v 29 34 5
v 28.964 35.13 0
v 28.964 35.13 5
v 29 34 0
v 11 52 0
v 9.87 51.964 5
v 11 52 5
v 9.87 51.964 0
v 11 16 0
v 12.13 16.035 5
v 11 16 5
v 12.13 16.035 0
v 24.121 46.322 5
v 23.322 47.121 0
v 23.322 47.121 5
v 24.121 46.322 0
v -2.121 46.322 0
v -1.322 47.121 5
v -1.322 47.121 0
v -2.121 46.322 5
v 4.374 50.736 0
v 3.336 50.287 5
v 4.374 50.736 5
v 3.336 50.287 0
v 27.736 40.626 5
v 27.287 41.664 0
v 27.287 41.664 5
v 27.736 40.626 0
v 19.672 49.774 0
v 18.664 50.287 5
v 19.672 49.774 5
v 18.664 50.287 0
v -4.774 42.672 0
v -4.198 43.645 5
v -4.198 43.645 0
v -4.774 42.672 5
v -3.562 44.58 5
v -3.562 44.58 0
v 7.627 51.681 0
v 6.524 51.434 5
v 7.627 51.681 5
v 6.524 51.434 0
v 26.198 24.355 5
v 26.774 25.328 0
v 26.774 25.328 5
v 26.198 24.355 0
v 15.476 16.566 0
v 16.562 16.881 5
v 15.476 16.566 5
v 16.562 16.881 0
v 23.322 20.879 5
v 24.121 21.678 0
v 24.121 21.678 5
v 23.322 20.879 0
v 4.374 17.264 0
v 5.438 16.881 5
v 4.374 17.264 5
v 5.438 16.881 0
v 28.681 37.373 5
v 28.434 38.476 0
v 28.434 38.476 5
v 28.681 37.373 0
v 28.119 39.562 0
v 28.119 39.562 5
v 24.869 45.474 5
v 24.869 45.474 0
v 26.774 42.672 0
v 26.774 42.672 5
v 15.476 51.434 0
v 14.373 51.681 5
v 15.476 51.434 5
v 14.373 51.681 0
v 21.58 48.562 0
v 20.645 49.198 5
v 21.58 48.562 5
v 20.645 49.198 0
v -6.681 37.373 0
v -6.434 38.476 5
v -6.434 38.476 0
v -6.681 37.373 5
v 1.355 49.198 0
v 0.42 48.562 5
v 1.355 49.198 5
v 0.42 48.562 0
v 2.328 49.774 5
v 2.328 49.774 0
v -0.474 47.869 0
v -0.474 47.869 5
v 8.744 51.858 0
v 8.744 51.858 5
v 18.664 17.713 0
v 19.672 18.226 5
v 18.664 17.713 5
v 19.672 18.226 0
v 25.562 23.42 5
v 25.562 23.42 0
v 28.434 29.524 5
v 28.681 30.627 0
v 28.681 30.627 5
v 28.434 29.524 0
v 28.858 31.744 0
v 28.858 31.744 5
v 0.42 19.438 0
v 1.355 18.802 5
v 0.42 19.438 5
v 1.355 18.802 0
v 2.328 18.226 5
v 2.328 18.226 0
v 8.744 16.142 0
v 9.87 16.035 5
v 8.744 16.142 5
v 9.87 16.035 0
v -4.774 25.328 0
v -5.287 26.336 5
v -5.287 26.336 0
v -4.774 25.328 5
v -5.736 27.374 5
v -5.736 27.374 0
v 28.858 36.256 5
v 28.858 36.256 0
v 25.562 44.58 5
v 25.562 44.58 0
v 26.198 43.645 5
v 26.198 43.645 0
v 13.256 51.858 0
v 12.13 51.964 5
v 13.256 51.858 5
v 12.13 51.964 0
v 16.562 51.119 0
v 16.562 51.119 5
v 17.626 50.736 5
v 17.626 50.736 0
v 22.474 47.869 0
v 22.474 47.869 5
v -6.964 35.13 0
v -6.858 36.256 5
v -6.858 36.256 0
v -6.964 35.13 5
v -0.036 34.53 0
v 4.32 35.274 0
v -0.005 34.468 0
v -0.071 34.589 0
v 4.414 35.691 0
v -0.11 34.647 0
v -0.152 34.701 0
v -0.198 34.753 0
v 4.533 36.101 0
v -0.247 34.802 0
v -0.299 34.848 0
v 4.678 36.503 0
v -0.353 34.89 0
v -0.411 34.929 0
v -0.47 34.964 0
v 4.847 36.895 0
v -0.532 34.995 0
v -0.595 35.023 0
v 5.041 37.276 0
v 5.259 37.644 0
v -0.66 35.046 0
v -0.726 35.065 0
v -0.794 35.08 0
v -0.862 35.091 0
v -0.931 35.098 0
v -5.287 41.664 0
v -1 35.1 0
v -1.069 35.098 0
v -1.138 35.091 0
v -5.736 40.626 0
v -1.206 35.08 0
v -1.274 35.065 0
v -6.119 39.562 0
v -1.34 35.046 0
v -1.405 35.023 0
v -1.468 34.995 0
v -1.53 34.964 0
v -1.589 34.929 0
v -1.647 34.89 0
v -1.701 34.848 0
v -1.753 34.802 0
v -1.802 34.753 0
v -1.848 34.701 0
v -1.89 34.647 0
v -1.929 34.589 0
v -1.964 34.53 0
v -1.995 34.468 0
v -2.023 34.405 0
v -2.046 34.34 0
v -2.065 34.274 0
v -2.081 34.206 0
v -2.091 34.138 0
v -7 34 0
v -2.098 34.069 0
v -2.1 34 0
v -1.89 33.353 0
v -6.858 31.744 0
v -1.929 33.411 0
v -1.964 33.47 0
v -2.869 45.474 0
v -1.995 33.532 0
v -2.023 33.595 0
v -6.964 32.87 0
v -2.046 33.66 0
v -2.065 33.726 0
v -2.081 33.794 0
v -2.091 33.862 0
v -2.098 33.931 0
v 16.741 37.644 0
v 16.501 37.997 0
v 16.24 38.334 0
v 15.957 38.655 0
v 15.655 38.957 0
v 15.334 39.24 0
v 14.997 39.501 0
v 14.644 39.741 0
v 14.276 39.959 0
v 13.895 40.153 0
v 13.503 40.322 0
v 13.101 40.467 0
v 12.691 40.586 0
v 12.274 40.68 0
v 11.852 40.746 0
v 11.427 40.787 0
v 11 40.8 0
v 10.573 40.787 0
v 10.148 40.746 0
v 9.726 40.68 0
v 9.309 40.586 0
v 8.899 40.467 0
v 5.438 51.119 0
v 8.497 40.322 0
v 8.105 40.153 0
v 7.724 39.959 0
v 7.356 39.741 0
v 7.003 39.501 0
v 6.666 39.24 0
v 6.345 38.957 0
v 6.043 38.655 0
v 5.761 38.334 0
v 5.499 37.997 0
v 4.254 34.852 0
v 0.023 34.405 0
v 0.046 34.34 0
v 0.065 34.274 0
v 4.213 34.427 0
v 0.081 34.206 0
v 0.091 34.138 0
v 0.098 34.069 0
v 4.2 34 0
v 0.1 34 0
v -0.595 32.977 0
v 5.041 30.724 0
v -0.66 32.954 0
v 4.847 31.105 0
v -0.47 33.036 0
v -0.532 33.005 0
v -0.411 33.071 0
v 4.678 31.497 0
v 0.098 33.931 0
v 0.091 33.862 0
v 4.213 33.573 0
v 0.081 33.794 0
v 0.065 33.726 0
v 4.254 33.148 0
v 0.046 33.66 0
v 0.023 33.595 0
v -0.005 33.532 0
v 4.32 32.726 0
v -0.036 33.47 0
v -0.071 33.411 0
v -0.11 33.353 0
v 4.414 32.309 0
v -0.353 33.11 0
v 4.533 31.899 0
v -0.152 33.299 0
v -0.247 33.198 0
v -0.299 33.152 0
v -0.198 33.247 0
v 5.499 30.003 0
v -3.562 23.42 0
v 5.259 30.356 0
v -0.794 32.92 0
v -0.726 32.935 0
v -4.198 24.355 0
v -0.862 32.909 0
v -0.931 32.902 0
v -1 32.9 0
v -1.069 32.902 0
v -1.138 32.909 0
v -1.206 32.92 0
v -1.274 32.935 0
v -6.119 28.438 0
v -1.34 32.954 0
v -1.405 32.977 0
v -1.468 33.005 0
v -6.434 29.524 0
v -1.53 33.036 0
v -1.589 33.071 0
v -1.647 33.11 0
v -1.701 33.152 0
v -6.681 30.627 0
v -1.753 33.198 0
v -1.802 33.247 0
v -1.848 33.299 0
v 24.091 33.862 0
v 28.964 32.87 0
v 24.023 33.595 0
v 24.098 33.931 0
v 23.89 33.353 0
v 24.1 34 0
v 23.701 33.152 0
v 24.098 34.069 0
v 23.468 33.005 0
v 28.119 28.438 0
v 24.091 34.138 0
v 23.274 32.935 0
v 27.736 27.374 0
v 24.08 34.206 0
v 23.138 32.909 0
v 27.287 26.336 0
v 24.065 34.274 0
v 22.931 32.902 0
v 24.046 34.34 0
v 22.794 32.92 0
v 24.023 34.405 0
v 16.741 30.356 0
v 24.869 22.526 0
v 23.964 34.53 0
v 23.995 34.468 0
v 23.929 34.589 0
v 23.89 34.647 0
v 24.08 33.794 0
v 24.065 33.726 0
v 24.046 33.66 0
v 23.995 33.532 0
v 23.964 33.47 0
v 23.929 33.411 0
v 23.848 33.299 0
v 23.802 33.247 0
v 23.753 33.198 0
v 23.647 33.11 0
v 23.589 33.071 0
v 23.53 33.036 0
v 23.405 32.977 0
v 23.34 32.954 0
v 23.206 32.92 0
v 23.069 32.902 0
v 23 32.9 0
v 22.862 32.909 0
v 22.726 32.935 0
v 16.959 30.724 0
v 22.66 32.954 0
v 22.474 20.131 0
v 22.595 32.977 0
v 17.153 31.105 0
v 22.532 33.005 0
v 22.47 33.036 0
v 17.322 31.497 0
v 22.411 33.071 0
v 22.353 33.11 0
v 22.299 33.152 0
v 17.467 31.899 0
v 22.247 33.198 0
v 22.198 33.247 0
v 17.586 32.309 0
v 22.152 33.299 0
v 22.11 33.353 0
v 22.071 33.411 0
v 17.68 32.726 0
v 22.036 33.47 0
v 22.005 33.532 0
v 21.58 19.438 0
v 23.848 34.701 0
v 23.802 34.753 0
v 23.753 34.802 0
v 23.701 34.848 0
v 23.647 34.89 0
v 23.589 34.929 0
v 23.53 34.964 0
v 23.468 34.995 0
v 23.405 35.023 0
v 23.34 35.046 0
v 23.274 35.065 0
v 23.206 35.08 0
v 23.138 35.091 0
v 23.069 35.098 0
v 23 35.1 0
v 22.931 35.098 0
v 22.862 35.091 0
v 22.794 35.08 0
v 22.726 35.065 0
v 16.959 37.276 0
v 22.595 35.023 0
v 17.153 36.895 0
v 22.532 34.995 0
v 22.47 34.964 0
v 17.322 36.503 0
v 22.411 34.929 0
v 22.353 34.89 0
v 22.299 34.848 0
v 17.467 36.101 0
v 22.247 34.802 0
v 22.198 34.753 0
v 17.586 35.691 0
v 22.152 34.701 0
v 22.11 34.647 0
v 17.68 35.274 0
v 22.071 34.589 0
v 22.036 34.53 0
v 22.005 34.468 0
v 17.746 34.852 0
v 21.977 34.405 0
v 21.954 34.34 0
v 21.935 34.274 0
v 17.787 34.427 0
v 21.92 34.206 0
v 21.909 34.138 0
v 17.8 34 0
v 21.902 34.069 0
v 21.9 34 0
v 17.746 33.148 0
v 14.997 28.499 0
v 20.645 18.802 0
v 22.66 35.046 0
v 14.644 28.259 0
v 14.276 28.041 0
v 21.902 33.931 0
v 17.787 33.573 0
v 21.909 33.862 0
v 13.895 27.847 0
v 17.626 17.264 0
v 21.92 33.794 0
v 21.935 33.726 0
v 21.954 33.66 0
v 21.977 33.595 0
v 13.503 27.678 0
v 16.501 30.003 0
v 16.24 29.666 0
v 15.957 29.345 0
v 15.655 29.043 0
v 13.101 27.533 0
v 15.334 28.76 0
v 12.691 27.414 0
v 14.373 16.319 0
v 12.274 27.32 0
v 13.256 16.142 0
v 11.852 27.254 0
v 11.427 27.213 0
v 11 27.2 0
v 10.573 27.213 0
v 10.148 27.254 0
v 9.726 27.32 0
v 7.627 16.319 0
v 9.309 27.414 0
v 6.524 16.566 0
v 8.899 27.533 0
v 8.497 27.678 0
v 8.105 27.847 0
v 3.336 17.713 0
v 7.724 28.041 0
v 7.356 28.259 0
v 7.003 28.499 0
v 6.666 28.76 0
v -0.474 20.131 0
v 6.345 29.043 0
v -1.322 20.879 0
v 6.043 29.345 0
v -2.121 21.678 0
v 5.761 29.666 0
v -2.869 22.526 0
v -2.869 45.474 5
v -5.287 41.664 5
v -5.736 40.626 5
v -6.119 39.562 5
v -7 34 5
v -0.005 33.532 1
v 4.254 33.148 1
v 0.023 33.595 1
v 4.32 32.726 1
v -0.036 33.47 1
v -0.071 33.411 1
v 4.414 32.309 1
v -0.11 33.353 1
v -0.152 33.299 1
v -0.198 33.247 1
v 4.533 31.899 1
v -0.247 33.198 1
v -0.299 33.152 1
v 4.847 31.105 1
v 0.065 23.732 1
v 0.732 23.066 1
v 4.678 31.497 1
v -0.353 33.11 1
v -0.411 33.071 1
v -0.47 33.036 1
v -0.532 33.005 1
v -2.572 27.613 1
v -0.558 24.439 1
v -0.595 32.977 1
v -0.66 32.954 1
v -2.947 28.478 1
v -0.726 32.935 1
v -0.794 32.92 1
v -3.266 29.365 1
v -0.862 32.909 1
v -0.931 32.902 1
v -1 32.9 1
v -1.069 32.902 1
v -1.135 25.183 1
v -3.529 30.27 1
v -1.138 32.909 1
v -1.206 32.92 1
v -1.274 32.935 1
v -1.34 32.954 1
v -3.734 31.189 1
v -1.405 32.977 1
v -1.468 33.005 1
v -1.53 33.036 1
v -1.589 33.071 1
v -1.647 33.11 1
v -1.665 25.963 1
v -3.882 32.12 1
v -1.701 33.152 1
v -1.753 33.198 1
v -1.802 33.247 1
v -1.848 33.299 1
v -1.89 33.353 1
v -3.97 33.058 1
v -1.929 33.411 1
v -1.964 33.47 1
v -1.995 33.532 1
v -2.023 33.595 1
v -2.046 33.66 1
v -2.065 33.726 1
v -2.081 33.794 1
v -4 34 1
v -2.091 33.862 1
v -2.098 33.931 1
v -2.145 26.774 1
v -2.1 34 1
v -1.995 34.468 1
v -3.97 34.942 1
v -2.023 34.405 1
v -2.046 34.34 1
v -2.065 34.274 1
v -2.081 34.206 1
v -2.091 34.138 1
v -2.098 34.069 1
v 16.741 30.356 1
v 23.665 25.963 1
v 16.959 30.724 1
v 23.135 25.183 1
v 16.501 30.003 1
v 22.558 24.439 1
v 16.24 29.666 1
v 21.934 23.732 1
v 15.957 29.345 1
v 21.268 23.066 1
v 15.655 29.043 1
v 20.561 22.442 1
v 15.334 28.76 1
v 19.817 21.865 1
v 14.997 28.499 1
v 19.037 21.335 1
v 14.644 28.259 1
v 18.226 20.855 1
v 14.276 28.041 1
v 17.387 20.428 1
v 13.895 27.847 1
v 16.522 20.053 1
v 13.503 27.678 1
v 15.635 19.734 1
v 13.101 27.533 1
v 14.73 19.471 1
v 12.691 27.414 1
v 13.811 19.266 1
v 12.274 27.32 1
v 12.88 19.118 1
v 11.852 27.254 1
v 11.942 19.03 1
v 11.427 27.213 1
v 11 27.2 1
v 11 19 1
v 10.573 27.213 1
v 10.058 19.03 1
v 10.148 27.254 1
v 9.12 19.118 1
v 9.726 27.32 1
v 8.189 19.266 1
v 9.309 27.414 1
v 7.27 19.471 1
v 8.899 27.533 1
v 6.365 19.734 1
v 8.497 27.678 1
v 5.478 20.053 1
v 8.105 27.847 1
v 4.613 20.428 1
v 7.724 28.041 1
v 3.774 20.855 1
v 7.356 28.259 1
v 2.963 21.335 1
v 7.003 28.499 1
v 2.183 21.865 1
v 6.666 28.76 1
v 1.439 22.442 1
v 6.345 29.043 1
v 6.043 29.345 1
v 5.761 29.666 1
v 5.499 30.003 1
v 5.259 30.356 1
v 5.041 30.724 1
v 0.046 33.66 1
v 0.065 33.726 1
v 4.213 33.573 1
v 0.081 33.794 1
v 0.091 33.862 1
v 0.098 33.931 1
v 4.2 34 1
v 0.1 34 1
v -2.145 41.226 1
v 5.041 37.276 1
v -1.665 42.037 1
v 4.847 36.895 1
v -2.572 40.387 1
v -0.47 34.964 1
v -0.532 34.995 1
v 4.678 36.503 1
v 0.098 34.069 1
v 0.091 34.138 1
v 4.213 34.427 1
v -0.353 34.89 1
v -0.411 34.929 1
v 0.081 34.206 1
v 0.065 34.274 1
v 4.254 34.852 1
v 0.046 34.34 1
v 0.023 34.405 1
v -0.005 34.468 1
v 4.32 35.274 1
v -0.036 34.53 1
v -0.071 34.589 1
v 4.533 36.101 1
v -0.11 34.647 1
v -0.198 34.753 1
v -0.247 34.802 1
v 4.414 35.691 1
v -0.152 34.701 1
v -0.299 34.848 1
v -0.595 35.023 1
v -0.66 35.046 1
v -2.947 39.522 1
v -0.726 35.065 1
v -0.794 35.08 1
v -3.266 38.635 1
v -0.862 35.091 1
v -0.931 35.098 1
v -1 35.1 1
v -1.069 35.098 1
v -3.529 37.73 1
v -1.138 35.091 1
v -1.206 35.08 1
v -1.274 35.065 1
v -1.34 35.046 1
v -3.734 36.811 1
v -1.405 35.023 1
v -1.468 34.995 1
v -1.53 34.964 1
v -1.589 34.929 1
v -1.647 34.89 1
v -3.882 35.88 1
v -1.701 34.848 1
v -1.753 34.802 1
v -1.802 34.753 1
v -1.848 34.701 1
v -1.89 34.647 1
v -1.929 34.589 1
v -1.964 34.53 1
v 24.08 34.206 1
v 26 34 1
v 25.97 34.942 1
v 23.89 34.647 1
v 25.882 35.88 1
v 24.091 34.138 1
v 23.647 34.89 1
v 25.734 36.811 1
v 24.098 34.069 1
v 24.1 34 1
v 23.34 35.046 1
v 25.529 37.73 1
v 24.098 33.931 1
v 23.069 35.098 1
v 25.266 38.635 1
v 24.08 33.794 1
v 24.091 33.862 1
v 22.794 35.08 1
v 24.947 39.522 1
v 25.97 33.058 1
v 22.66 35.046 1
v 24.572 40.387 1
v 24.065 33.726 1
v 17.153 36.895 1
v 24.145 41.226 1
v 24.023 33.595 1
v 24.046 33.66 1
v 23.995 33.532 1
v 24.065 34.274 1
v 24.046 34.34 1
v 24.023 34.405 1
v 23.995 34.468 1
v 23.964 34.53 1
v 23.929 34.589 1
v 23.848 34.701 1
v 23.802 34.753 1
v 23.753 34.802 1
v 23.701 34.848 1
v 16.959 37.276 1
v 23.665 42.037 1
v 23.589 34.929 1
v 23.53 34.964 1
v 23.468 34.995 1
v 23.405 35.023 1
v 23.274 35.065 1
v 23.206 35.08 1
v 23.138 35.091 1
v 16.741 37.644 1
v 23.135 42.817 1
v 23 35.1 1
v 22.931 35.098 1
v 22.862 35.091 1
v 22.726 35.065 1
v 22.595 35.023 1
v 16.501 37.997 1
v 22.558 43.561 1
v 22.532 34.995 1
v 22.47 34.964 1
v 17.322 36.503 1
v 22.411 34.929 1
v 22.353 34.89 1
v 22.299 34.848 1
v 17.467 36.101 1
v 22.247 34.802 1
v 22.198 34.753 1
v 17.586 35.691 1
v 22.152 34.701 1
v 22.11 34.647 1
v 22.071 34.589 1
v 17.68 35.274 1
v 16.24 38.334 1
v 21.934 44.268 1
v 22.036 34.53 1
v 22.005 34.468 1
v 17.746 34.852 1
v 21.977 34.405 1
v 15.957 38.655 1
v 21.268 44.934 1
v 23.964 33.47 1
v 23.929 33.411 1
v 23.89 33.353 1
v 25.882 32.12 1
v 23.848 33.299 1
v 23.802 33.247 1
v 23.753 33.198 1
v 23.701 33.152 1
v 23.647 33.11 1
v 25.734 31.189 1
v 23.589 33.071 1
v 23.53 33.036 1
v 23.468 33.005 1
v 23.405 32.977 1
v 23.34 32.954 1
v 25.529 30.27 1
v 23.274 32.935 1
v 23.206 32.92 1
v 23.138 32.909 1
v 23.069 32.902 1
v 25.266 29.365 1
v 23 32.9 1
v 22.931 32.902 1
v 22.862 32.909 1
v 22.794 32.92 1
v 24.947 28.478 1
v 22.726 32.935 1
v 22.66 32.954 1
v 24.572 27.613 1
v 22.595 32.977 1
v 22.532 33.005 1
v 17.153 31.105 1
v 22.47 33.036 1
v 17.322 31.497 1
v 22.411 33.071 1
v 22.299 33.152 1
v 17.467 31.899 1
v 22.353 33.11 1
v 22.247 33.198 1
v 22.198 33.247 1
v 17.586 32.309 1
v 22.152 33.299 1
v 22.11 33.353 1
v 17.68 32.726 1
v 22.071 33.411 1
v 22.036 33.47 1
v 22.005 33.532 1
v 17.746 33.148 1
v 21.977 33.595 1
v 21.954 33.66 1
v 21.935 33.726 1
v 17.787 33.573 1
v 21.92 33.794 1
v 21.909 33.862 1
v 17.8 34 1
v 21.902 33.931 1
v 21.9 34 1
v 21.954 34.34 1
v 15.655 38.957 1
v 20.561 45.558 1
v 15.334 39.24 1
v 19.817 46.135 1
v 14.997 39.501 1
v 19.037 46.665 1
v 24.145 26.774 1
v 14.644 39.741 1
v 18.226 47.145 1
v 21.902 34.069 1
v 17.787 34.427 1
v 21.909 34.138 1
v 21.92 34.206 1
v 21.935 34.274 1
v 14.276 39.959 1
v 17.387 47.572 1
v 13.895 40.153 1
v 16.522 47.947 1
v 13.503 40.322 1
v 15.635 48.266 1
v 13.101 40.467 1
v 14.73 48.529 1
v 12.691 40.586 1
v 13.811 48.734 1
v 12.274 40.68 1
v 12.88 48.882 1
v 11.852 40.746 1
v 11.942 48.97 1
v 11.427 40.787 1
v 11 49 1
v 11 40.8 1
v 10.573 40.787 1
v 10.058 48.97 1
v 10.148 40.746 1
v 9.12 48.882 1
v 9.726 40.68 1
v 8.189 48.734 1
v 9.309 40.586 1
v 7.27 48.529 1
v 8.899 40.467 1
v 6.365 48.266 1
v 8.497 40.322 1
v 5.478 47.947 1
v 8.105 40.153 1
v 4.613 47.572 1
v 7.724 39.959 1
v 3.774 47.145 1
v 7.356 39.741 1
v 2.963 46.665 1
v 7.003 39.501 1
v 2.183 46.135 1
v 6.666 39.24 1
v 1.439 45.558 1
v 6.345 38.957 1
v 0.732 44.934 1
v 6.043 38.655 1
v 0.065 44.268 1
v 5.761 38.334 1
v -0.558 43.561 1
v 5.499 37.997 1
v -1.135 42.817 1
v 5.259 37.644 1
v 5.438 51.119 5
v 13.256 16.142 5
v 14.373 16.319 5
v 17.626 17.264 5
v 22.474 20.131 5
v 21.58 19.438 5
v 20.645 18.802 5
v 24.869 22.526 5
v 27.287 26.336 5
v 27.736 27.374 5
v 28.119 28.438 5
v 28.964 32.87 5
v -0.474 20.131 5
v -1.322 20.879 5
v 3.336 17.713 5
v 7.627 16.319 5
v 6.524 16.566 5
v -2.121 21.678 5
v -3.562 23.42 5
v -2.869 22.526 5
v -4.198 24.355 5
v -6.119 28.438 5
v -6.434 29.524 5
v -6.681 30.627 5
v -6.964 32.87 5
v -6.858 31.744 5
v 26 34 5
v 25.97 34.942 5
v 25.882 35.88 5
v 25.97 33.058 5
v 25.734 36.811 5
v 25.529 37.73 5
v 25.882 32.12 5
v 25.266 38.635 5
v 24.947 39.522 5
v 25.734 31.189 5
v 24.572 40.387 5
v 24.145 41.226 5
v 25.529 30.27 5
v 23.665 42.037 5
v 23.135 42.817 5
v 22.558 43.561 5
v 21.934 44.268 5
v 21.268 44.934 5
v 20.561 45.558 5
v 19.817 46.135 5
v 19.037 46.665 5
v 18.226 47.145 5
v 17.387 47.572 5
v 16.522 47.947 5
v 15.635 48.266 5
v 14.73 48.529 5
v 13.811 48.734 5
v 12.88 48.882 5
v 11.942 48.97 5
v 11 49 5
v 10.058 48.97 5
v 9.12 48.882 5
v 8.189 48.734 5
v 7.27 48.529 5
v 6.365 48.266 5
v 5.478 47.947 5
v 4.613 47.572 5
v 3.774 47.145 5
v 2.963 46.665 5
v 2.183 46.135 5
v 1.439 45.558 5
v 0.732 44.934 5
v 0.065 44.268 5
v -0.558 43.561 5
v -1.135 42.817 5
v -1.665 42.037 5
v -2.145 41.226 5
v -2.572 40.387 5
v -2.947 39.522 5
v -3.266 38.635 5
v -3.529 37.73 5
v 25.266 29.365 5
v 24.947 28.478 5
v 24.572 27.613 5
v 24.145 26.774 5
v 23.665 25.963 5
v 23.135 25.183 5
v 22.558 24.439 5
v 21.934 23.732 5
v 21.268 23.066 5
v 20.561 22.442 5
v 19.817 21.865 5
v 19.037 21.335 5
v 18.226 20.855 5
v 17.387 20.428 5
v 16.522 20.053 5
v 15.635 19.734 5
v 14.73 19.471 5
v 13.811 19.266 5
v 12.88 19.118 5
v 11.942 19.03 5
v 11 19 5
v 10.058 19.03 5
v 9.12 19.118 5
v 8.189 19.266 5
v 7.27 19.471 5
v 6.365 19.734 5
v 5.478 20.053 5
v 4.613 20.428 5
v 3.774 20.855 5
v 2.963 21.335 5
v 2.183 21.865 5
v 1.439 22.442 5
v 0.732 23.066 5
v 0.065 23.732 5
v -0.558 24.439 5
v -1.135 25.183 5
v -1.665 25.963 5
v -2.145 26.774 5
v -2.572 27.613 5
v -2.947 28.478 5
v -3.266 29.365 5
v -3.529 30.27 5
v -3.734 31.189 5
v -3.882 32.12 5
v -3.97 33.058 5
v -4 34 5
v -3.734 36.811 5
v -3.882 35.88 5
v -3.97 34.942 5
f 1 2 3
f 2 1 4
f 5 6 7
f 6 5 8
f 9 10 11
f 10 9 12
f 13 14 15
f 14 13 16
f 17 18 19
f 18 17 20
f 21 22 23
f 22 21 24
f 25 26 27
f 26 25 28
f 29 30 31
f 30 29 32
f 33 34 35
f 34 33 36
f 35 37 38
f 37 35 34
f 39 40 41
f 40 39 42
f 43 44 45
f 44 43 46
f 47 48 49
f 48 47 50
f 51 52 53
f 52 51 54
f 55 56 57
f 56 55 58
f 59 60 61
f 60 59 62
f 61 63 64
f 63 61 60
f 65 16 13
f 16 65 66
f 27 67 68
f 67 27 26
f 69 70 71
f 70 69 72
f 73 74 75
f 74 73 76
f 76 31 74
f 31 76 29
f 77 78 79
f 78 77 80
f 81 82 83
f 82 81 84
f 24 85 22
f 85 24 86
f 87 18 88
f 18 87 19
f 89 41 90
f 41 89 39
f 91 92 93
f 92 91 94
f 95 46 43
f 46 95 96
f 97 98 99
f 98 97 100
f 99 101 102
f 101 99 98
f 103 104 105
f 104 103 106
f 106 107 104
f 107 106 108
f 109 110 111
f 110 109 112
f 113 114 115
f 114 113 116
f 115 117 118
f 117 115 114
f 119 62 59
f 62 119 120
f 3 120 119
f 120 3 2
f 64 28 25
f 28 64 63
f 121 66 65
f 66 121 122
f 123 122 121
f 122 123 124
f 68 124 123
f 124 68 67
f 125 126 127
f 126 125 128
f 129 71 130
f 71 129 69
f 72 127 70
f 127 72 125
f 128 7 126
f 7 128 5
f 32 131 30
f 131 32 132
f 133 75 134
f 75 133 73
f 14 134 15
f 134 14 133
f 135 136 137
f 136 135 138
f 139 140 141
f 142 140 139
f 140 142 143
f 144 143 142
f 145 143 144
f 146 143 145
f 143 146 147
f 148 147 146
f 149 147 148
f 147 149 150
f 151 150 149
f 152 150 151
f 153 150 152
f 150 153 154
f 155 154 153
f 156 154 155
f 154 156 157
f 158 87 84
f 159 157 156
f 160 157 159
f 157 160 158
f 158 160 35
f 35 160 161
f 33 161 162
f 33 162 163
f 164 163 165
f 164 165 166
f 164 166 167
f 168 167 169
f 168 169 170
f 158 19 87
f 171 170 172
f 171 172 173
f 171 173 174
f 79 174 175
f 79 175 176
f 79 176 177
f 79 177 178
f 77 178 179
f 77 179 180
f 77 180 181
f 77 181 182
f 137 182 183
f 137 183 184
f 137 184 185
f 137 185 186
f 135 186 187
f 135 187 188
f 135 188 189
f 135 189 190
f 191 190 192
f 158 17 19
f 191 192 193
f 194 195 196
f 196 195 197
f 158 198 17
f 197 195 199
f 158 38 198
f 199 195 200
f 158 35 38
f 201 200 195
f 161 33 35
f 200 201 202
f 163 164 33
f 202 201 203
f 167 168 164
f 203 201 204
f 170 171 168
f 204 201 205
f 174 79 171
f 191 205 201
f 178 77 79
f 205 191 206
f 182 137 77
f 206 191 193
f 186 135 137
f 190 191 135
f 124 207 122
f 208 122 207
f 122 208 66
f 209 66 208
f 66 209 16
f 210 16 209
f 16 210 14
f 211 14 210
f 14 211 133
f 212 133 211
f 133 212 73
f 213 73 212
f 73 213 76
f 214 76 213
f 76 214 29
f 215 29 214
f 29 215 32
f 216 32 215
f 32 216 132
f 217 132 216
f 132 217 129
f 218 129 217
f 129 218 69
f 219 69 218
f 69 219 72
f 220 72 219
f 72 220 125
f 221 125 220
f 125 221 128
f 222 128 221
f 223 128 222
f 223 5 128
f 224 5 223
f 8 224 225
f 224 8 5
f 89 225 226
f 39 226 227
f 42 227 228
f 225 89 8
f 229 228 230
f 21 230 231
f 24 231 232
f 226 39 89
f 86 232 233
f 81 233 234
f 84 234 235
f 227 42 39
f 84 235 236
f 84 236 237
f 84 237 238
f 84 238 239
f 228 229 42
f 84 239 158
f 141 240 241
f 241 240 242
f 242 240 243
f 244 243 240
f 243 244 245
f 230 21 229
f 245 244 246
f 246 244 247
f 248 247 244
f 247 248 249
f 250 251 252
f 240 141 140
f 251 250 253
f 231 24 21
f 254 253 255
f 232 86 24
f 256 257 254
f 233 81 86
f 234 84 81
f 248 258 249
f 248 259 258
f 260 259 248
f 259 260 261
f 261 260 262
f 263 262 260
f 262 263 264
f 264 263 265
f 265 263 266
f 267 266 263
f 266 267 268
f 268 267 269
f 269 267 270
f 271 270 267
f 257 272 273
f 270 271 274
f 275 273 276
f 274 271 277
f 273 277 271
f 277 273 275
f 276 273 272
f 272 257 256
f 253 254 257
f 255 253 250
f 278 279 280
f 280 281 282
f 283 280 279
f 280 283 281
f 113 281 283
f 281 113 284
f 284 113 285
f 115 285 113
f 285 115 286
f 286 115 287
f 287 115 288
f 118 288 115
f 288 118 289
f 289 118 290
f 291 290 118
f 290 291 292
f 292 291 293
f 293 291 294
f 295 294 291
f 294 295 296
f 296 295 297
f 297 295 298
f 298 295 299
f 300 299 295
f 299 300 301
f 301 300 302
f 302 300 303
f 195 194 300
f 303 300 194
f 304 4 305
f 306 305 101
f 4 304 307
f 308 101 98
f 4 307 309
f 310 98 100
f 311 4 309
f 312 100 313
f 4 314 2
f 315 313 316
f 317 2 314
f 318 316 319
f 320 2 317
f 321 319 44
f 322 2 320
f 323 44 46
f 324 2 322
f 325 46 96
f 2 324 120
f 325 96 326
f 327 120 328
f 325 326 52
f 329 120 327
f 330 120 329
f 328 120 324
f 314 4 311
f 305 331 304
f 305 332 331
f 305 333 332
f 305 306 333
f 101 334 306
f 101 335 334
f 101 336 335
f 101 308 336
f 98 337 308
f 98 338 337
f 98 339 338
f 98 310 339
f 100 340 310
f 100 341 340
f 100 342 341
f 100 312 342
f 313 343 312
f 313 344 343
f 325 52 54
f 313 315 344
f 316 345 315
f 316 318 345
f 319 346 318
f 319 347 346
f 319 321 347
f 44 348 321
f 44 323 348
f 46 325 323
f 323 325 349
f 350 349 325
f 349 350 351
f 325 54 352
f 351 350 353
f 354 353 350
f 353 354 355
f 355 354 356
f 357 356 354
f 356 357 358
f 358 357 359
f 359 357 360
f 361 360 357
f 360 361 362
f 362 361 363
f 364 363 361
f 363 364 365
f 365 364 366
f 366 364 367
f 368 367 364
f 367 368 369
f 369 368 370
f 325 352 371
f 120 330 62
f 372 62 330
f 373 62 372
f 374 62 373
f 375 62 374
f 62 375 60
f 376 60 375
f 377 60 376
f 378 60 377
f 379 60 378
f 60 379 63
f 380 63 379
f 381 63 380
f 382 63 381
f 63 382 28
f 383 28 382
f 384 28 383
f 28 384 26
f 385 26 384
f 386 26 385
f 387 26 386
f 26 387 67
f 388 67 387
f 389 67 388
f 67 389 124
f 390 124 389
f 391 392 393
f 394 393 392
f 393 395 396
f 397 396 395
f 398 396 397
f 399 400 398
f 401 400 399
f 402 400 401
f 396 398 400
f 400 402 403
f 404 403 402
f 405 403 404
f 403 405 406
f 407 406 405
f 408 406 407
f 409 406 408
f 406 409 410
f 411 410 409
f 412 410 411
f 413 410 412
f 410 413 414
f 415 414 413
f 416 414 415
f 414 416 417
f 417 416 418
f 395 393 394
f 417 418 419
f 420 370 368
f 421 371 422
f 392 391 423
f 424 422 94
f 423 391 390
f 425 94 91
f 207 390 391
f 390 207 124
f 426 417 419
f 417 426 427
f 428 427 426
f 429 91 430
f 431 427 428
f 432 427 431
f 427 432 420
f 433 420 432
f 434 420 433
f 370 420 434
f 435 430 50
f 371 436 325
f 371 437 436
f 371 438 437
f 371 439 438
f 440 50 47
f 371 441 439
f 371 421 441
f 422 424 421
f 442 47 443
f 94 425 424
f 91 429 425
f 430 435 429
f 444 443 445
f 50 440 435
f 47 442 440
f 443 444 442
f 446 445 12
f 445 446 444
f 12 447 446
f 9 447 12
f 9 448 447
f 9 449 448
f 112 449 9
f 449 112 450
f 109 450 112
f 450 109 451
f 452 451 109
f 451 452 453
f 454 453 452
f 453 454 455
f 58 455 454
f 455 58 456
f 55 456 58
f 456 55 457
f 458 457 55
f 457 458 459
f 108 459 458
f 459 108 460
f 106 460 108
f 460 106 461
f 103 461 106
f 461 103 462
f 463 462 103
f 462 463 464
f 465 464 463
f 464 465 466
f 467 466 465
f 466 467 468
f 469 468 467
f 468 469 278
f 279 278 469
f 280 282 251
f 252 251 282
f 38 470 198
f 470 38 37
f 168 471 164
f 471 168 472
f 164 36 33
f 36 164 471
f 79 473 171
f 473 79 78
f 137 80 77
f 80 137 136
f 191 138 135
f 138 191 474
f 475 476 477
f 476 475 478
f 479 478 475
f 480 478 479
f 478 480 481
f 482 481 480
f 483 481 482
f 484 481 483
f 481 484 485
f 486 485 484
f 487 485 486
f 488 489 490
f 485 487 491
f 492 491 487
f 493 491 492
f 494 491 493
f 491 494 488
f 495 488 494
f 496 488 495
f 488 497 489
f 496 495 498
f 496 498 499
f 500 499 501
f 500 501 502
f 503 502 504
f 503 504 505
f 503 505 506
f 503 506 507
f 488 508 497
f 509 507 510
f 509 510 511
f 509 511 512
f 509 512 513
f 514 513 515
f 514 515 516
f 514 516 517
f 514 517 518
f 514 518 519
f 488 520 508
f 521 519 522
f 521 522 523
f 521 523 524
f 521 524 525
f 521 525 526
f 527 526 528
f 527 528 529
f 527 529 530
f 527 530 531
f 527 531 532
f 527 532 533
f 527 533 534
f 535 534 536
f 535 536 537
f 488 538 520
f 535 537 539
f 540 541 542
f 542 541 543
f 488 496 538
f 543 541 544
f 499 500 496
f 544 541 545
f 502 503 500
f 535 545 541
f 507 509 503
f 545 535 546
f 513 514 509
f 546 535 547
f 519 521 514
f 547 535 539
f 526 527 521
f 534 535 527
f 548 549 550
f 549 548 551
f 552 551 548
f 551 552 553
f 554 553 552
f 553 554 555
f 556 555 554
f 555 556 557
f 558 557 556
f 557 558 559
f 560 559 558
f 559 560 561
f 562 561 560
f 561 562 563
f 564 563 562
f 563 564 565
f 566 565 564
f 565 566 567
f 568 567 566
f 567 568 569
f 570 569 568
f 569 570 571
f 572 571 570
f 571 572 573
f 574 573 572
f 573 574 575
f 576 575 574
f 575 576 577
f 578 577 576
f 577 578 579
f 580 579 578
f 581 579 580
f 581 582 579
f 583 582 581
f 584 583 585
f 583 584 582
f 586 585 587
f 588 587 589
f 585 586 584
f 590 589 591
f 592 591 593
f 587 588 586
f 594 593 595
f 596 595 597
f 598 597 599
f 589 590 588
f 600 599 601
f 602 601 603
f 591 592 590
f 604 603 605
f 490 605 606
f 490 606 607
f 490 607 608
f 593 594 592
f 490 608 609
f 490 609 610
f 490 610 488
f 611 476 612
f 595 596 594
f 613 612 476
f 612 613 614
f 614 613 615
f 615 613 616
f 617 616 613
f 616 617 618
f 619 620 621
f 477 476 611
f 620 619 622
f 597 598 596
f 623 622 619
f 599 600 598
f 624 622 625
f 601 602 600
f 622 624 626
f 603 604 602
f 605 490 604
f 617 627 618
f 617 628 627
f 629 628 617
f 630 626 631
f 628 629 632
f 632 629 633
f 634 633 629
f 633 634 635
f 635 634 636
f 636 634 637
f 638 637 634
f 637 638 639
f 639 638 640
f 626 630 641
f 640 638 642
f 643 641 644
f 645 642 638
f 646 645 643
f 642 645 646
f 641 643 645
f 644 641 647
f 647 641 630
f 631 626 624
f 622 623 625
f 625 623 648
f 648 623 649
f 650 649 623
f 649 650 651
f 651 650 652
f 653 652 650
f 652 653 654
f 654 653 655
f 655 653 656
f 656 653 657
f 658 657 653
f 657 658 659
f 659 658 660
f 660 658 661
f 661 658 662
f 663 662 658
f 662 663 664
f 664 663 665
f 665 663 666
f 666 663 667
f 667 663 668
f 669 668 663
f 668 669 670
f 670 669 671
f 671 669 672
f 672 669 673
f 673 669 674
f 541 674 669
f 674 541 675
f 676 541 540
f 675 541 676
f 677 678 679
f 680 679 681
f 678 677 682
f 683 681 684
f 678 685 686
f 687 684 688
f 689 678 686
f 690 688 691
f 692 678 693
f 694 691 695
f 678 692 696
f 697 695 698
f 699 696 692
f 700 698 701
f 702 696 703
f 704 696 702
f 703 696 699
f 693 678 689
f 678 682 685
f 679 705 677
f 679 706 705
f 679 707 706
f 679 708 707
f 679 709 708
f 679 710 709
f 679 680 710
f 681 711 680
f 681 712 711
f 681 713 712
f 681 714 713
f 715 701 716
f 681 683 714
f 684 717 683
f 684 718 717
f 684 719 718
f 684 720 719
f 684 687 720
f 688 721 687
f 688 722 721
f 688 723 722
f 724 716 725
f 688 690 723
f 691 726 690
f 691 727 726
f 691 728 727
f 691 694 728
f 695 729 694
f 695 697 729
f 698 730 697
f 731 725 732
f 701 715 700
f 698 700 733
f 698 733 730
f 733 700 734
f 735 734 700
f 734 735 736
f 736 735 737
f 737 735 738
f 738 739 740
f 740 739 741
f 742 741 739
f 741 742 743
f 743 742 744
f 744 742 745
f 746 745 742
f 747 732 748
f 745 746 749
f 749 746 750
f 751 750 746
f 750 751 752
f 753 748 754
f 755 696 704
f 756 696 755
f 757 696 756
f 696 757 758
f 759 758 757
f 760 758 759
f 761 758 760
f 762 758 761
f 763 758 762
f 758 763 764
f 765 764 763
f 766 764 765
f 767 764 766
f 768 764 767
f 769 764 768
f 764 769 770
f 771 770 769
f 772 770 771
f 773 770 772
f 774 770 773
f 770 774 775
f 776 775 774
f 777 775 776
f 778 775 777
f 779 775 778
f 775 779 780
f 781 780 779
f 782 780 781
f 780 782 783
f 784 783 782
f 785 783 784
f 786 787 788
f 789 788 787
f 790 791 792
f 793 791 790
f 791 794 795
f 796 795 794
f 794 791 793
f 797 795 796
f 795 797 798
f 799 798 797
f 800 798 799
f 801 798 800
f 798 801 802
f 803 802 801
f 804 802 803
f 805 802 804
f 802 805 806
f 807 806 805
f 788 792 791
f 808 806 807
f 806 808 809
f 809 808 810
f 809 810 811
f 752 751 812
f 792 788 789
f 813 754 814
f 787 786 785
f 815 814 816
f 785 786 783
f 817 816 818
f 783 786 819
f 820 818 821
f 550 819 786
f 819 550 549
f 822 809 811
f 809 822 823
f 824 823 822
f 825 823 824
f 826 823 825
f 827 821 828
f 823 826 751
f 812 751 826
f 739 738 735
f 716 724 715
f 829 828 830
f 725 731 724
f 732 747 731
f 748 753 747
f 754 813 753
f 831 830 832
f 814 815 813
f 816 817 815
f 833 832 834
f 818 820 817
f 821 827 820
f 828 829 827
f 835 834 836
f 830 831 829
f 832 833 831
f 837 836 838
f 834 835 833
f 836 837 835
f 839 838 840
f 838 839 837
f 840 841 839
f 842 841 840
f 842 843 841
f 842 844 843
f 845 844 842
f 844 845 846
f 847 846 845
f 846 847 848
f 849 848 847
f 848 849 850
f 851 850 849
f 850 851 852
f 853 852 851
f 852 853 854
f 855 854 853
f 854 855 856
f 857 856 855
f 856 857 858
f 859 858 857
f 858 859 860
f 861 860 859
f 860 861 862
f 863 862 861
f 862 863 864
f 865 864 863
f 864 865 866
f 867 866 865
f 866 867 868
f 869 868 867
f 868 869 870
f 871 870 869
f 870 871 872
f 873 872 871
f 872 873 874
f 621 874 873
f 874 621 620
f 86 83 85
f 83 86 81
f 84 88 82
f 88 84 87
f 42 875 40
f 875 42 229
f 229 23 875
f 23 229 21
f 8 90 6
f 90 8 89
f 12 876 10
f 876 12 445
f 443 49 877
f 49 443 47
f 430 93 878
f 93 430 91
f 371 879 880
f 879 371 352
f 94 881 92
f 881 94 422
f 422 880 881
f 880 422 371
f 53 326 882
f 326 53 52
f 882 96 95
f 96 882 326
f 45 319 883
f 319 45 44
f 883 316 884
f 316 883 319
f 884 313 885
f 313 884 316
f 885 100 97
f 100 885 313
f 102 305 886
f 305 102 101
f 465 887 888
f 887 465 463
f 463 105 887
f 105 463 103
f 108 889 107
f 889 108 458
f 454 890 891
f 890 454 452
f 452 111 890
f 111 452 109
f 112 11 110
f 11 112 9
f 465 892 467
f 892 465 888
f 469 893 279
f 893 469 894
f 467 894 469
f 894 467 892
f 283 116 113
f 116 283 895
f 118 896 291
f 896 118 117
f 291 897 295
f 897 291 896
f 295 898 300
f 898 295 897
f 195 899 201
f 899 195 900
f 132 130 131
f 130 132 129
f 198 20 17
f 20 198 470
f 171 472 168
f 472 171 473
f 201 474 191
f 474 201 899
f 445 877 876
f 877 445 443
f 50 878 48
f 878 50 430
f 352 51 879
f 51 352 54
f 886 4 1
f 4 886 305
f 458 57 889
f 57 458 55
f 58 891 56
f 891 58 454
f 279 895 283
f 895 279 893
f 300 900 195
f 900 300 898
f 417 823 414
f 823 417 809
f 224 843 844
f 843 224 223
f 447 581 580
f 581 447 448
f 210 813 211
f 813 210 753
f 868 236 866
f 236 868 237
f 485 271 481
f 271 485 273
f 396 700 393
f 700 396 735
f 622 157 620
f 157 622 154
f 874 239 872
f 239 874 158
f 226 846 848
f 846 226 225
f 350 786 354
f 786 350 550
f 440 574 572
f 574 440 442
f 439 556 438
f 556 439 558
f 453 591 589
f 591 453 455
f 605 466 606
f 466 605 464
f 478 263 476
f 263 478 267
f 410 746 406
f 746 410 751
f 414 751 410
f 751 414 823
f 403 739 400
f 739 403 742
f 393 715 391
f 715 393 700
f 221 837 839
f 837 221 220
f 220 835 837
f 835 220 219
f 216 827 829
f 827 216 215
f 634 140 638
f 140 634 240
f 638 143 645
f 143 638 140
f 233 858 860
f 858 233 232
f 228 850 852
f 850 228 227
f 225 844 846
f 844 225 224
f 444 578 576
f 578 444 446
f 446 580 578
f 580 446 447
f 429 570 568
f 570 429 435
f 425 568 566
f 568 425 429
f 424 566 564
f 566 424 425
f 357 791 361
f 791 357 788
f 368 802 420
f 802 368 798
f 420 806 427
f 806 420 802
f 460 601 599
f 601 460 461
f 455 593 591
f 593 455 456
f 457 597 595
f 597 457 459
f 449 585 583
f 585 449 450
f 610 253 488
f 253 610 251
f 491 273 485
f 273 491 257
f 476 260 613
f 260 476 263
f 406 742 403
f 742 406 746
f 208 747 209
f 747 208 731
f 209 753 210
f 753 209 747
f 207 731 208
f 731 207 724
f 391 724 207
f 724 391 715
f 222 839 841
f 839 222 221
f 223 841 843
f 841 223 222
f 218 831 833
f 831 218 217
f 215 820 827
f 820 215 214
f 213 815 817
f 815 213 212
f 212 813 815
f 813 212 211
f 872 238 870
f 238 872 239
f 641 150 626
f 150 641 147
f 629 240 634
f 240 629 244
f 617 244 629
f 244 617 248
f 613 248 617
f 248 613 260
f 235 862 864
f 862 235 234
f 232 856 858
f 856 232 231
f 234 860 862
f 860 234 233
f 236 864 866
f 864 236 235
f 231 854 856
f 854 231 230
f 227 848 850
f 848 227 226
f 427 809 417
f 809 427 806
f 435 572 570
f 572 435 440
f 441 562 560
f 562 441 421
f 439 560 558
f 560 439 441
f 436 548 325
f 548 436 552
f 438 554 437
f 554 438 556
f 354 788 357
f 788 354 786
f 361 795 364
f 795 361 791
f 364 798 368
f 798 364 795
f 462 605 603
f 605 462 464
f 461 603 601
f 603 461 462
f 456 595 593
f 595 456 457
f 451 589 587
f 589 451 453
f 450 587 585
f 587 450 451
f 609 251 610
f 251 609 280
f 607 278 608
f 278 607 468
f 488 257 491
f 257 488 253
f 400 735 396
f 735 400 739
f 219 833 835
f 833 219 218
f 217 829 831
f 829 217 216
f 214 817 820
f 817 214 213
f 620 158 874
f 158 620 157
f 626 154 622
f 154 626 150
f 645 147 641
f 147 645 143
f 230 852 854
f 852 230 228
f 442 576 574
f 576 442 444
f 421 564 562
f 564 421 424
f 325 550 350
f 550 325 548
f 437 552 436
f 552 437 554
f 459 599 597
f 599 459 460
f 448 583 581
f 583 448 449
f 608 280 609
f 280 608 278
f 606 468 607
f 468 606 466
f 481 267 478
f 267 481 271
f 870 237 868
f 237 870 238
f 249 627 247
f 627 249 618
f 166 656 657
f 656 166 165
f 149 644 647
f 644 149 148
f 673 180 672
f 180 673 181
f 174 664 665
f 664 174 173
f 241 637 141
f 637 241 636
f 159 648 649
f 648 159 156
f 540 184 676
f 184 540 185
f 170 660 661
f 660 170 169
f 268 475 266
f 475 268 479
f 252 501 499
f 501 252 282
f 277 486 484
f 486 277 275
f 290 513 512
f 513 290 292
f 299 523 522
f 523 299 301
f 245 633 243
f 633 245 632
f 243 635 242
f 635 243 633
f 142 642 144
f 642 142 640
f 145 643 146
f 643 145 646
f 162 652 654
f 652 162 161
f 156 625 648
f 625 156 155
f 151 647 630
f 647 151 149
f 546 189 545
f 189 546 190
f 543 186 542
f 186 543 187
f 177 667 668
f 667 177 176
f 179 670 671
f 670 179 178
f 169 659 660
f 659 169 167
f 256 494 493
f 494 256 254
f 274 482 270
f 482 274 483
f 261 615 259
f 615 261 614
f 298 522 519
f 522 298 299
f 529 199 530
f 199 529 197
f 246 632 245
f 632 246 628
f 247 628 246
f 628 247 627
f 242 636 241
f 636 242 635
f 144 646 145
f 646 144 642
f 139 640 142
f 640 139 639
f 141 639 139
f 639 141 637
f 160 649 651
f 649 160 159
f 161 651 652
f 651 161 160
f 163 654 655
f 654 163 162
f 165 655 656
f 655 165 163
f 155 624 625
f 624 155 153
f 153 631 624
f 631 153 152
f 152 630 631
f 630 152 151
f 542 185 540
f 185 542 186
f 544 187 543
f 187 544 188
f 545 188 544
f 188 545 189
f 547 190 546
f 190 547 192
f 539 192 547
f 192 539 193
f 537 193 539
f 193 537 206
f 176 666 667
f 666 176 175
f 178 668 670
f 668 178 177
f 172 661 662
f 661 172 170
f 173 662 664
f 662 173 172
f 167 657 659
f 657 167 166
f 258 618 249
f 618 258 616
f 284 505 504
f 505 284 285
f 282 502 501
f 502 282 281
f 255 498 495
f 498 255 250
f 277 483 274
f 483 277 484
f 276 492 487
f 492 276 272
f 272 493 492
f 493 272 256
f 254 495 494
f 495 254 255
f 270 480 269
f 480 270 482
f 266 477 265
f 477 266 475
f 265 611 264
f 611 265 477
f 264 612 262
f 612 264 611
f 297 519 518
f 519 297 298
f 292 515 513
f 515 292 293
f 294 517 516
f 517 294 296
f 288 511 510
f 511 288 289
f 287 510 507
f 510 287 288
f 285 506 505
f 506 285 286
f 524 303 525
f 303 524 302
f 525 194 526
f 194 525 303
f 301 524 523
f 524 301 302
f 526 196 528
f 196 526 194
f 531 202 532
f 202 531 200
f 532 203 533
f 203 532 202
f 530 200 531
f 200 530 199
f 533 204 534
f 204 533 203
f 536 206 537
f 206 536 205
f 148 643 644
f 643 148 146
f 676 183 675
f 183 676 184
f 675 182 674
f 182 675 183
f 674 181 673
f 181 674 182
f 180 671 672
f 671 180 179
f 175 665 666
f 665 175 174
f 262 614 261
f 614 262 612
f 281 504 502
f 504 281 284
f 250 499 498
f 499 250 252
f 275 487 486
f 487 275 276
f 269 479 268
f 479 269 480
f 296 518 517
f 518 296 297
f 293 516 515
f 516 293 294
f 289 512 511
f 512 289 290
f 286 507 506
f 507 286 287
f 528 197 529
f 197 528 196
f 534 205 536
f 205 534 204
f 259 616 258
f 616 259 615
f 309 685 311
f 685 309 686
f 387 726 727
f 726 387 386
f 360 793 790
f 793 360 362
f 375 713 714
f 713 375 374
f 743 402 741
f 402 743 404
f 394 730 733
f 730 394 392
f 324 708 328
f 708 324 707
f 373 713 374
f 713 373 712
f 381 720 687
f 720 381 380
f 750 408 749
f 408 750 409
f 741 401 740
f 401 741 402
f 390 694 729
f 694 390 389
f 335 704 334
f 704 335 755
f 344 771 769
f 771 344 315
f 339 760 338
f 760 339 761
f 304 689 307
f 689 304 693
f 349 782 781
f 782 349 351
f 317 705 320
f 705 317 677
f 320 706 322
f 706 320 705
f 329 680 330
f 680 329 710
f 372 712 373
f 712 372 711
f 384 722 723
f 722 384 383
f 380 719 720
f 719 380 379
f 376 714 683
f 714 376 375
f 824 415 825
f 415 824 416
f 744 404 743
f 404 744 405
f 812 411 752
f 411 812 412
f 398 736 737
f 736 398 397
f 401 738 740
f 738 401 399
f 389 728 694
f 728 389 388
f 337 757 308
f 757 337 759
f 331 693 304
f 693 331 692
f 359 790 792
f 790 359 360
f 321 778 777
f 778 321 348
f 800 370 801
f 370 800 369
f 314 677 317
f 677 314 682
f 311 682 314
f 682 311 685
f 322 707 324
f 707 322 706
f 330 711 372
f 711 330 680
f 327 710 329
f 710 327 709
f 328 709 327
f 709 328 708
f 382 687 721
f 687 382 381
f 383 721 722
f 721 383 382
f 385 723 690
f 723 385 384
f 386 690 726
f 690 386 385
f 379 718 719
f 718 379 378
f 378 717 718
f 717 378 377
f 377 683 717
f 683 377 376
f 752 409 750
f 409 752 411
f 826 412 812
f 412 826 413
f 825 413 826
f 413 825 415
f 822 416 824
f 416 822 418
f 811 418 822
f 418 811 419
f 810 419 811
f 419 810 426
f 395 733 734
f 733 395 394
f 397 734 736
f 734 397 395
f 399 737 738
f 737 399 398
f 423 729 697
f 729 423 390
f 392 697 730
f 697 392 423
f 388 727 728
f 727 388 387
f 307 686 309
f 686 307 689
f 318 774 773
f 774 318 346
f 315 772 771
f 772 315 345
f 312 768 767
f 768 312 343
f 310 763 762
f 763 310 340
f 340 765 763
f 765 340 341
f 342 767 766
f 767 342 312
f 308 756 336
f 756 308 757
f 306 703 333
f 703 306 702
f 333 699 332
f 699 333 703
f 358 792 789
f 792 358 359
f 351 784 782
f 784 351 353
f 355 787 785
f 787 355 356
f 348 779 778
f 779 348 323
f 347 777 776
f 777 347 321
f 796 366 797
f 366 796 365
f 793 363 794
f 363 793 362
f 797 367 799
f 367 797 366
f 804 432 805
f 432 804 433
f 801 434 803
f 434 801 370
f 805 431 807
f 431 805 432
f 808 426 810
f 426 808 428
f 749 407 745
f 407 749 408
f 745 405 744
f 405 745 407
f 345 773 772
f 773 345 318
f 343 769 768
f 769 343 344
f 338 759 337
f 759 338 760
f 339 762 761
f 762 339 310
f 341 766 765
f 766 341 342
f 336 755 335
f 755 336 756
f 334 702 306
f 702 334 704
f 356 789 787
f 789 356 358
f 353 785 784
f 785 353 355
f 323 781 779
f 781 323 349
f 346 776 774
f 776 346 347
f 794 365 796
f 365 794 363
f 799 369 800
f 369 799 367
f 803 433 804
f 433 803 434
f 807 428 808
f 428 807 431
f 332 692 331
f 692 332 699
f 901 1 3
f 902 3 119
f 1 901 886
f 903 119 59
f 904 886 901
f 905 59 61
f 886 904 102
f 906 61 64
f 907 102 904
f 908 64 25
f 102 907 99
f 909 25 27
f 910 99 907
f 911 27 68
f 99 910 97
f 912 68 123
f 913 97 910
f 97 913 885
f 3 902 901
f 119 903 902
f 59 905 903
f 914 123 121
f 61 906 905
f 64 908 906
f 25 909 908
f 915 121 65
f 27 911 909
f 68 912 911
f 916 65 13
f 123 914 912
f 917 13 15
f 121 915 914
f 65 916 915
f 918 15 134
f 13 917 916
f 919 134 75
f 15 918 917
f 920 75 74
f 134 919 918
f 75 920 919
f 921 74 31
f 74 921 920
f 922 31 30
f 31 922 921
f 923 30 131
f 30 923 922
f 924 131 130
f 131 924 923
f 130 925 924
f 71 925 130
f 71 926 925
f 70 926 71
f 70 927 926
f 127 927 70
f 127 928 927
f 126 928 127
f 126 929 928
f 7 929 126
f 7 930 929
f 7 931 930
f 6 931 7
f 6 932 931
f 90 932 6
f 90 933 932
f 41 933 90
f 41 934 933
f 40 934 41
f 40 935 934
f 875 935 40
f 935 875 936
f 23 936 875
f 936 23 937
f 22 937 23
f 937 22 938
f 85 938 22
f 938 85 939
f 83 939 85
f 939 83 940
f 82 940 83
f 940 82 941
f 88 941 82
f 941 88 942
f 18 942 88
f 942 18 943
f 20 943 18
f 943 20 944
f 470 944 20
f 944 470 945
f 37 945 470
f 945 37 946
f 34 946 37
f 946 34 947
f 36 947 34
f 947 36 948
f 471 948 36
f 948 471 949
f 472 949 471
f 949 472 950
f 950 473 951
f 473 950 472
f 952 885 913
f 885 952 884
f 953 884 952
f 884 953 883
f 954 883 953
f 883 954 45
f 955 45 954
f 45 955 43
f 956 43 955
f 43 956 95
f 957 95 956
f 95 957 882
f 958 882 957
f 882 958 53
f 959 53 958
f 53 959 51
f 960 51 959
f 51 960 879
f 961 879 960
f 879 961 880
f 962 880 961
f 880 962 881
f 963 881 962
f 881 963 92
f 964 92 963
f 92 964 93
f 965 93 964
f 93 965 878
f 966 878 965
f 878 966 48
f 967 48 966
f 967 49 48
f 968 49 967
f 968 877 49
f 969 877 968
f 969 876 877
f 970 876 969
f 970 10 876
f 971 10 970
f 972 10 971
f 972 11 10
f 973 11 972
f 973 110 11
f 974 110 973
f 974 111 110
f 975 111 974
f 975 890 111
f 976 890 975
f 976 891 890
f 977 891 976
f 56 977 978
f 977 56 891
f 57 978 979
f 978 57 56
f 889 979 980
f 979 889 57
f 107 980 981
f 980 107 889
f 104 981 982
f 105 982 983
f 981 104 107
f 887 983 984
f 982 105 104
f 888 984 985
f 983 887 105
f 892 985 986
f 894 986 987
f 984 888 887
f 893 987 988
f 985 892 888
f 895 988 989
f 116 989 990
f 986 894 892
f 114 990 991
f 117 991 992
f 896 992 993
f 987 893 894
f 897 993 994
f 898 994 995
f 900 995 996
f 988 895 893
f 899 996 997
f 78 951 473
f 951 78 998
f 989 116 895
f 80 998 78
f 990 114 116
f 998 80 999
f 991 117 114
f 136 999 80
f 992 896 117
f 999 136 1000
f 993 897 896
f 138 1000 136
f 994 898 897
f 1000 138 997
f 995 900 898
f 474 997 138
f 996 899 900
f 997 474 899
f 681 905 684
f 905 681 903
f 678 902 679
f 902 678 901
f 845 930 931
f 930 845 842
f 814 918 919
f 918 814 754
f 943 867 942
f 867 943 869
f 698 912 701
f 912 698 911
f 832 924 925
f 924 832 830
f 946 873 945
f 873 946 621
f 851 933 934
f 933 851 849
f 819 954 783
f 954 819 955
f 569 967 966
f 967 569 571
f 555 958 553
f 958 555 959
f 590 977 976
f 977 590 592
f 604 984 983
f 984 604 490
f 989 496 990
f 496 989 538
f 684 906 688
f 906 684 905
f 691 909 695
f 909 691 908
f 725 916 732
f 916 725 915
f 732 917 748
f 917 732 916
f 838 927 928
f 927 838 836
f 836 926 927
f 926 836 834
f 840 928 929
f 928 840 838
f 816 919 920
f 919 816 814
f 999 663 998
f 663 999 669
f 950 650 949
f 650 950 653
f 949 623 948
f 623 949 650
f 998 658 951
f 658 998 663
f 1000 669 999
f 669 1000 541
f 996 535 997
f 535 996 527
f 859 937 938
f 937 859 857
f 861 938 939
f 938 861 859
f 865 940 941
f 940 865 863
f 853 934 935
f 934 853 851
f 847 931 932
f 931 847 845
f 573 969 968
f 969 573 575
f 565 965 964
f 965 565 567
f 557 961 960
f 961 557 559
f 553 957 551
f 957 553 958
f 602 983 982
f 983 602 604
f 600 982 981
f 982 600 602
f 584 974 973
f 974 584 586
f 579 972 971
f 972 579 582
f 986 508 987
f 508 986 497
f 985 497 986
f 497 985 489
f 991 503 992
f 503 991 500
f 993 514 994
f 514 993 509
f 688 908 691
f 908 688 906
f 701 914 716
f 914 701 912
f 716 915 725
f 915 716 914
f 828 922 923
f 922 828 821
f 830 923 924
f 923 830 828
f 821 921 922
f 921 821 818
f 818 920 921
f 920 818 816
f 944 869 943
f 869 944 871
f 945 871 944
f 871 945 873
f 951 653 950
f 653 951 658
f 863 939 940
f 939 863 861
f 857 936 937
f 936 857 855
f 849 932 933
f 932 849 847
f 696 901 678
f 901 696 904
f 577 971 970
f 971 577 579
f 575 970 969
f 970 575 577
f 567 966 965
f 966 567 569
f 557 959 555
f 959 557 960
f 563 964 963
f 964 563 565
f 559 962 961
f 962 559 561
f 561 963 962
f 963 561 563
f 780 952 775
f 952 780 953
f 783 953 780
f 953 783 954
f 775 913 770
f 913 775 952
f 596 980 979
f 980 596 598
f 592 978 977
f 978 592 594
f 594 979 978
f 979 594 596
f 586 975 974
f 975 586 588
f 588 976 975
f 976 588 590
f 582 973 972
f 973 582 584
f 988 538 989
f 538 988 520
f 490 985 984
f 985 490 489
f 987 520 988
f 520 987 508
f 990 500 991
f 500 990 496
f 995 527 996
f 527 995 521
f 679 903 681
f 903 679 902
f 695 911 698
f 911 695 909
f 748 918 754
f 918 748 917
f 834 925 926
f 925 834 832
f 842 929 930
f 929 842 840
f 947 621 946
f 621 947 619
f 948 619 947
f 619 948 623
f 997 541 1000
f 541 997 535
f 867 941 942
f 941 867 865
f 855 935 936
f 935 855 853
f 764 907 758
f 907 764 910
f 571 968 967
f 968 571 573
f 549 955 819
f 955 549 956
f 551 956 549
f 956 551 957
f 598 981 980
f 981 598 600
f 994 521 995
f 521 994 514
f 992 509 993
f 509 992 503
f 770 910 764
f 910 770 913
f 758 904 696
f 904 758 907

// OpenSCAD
// walls
difference() {
    translate([11, 34, 1]) cylinder(r=18, h=4, $fn=100);
    translate([11, 34, 0]) cylinder(r=15, h=12, $fn=100);
}

// baseplate
difference() {
    translate([11, 34, 0]) cylinder(r=18, h=1, $fn=100);
    // hole for DC in
    translate([11, 34, -1]) cylinder(r=6.8, h=30, $fn=100);
    // M2 hole for screw
    translate([-1, 34, -1]) cylinder(r=1.1, h=30, $fn=100);
    translate([23, 34, -1]) cylinder(r=1.1, h=30, $fn=100);
}
